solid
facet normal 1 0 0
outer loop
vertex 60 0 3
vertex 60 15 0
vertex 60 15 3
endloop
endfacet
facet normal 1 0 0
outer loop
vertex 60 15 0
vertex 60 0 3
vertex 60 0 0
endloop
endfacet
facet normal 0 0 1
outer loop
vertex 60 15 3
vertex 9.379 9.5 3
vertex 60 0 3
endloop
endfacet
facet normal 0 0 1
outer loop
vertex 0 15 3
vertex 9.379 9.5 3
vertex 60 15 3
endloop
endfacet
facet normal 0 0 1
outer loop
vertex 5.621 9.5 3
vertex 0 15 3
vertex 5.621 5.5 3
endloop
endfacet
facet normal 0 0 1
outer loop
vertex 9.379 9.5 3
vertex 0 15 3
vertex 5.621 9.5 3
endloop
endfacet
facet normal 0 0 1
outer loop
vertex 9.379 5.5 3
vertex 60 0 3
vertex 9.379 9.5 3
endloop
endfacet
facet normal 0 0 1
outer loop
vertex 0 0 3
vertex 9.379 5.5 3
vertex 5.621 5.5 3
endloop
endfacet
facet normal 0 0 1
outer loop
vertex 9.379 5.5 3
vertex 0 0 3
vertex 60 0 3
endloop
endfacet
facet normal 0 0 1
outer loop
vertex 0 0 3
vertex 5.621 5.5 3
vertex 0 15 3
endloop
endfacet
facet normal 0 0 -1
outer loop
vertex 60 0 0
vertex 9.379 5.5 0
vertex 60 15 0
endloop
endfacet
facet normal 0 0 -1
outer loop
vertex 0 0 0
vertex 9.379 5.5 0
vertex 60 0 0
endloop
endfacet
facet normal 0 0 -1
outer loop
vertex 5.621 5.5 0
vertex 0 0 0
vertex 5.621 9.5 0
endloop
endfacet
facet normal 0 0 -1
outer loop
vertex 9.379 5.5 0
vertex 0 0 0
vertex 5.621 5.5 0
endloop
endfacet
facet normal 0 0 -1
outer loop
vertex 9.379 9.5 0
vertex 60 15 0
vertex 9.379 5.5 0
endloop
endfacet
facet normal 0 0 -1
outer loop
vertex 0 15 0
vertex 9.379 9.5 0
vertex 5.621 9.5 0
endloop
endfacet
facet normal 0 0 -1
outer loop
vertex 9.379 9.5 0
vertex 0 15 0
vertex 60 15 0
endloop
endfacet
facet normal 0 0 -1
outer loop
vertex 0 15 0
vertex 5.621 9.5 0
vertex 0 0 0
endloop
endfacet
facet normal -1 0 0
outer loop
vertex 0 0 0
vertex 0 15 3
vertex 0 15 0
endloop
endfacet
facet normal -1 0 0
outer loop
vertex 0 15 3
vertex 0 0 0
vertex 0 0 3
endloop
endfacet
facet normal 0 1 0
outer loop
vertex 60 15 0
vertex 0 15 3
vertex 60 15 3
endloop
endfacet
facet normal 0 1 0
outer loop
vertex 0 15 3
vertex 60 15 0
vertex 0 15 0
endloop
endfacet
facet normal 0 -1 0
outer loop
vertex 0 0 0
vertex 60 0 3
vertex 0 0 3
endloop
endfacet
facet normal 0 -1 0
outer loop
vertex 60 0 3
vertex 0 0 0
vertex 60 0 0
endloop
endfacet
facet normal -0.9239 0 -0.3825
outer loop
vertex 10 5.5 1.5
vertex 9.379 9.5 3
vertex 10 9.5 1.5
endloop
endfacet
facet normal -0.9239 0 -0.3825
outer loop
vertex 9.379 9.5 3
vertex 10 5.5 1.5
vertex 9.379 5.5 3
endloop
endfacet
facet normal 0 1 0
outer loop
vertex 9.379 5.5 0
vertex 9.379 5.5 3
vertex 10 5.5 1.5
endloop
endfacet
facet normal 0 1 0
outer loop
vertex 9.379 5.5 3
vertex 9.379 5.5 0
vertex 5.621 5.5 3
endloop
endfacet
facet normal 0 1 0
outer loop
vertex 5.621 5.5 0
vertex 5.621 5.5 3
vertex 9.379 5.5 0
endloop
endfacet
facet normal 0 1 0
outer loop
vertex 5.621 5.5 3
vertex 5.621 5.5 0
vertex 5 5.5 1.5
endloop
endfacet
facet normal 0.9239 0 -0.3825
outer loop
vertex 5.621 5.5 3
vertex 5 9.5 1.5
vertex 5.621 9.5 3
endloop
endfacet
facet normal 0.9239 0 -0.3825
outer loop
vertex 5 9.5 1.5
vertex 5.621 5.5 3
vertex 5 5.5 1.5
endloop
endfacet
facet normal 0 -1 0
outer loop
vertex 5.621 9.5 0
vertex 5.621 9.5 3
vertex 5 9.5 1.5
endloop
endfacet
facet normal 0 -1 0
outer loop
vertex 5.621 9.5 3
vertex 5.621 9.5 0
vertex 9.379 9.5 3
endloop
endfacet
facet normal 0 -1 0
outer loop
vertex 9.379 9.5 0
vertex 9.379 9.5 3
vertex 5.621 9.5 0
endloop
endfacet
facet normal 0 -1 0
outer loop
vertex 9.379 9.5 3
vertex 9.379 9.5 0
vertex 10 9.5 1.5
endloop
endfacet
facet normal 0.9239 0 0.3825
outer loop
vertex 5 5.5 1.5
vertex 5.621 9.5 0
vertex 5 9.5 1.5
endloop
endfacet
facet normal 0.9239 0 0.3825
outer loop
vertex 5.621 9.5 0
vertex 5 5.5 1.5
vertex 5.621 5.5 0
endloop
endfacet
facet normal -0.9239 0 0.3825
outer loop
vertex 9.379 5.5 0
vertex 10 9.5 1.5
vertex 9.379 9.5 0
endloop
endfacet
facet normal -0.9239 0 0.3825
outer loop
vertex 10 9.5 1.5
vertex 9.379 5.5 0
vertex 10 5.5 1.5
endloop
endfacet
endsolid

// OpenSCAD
// Parameters for the flat bar with a hole
bar_length = 60;       // Length of the bar
bar_width = 15;        // Width of the bar
bar_thickness = 3;     // Thickness of the bar
hole_diameter = 5;     // Diameter of the hole
hole_offset = 7.5;     // Distance from the center of the hole to the end of the bar

// Main module to create the flat bar with a hole
module flat_bar_with_hole() {
    // Create the rectangular bar
    difference() {
        cube([bar_length, bar_width, bar_thickness], center = false);
        
        // Subtract the hole
        translate([hole_offset, bar_width / 2, bar_thickness / 2])
            rotate([90, 0, 0])
            cylinder(r = hole_diameter / 2, h = bar_thickness + 1, center = true);
    }
}

// Render the flat bar with a hole
flat_bar_with_hole();
